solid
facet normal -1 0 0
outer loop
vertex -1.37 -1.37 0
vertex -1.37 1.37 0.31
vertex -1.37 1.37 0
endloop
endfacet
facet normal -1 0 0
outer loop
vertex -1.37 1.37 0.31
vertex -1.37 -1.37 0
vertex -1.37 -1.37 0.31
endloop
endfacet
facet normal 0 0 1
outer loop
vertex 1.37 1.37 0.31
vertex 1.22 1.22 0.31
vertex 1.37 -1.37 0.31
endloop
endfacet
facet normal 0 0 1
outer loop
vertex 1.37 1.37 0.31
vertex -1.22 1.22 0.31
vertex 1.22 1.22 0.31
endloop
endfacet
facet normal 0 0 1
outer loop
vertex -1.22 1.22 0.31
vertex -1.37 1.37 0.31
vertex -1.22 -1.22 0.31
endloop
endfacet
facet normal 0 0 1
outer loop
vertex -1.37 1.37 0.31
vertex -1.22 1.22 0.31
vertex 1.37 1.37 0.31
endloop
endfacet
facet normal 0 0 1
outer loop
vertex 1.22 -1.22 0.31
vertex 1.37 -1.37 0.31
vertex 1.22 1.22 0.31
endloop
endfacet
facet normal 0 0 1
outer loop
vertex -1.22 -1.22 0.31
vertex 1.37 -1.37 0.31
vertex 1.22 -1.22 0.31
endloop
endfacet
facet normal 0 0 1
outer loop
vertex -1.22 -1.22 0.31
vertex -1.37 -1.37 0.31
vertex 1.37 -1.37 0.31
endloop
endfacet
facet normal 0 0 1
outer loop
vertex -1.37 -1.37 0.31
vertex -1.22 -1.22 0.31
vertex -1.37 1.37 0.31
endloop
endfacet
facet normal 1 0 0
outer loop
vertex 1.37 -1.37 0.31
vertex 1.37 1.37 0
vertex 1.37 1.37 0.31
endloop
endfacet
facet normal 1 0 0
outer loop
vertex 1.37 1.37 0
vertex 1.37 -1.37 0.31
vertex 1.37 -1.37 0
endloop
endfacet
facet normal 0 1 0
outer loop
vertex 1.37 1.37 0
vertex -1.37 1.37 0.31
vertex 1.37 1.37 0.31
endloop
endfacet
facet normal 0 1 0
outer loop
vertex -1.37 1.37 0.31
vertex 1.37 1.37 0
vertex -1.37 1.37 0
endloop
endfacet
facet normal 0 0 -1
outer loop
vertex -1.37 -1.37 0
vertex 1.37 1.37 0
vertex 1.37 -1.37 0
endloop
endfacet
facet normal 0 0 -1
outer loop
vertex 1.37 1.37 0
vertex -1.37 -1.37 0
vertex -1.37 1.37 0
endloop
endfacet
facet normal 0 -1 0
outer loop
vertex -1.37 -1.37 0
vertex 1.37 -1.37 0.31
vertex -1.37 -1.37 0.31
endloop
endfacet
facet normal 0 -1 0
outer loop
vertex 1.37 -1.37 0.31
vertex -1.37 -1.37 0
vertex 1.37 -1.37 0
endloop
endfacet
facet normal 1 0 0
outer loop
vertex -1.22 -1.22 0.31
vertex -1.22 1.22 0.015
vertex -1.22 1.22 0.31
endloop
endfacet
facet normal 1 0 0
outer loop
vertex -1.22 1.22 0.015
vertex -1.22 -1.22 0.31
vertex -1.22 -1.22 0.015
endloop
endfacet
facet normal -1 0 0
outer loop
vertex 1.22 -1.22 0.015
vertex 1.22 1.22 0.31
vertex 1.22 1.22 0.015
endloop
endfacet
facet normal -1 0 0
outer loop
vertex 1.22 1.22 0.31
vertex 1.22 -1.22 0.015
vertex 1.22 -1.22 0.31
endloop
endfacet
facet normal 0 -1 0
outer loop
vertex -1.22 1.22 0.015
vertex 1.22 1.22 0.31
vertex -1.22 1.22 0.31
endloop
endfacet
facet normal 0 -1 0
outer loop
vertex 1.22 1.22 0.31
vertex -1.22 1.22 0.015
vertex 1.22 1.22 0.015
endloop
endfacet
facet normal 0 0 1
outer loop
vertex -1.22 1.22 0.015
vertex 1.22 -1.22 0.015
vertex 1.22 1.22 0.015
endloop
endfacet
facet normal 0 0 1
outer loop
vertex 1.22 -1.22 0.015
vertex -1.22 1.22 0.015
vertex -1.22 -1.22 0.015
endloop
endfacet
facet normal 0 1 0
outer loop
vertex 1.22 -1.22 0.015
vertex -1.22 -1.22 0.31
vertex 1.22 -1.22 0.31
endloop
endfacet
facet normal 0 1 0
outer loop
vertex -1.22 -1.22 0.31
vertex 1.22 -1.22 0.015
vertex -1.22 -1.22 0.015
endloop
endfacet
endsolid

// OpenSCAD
// all dimensions are meters cause gazebo
widthO = 2.74;
depthO = 2.74;
widthI = 2.44;
depthI = 2.44;
height = .30;





$fn = 2000; 
translate([0,0,height/2+0.5/100]){ // translate so the zero axis of the model is the bottom of the plane
    difference(){//main arena
        cube([widthO,depthO,height+1/100],true);
        translate([0,0,1/100]){
            cube([widthI,depthI,height],true);
        }
    }
}
